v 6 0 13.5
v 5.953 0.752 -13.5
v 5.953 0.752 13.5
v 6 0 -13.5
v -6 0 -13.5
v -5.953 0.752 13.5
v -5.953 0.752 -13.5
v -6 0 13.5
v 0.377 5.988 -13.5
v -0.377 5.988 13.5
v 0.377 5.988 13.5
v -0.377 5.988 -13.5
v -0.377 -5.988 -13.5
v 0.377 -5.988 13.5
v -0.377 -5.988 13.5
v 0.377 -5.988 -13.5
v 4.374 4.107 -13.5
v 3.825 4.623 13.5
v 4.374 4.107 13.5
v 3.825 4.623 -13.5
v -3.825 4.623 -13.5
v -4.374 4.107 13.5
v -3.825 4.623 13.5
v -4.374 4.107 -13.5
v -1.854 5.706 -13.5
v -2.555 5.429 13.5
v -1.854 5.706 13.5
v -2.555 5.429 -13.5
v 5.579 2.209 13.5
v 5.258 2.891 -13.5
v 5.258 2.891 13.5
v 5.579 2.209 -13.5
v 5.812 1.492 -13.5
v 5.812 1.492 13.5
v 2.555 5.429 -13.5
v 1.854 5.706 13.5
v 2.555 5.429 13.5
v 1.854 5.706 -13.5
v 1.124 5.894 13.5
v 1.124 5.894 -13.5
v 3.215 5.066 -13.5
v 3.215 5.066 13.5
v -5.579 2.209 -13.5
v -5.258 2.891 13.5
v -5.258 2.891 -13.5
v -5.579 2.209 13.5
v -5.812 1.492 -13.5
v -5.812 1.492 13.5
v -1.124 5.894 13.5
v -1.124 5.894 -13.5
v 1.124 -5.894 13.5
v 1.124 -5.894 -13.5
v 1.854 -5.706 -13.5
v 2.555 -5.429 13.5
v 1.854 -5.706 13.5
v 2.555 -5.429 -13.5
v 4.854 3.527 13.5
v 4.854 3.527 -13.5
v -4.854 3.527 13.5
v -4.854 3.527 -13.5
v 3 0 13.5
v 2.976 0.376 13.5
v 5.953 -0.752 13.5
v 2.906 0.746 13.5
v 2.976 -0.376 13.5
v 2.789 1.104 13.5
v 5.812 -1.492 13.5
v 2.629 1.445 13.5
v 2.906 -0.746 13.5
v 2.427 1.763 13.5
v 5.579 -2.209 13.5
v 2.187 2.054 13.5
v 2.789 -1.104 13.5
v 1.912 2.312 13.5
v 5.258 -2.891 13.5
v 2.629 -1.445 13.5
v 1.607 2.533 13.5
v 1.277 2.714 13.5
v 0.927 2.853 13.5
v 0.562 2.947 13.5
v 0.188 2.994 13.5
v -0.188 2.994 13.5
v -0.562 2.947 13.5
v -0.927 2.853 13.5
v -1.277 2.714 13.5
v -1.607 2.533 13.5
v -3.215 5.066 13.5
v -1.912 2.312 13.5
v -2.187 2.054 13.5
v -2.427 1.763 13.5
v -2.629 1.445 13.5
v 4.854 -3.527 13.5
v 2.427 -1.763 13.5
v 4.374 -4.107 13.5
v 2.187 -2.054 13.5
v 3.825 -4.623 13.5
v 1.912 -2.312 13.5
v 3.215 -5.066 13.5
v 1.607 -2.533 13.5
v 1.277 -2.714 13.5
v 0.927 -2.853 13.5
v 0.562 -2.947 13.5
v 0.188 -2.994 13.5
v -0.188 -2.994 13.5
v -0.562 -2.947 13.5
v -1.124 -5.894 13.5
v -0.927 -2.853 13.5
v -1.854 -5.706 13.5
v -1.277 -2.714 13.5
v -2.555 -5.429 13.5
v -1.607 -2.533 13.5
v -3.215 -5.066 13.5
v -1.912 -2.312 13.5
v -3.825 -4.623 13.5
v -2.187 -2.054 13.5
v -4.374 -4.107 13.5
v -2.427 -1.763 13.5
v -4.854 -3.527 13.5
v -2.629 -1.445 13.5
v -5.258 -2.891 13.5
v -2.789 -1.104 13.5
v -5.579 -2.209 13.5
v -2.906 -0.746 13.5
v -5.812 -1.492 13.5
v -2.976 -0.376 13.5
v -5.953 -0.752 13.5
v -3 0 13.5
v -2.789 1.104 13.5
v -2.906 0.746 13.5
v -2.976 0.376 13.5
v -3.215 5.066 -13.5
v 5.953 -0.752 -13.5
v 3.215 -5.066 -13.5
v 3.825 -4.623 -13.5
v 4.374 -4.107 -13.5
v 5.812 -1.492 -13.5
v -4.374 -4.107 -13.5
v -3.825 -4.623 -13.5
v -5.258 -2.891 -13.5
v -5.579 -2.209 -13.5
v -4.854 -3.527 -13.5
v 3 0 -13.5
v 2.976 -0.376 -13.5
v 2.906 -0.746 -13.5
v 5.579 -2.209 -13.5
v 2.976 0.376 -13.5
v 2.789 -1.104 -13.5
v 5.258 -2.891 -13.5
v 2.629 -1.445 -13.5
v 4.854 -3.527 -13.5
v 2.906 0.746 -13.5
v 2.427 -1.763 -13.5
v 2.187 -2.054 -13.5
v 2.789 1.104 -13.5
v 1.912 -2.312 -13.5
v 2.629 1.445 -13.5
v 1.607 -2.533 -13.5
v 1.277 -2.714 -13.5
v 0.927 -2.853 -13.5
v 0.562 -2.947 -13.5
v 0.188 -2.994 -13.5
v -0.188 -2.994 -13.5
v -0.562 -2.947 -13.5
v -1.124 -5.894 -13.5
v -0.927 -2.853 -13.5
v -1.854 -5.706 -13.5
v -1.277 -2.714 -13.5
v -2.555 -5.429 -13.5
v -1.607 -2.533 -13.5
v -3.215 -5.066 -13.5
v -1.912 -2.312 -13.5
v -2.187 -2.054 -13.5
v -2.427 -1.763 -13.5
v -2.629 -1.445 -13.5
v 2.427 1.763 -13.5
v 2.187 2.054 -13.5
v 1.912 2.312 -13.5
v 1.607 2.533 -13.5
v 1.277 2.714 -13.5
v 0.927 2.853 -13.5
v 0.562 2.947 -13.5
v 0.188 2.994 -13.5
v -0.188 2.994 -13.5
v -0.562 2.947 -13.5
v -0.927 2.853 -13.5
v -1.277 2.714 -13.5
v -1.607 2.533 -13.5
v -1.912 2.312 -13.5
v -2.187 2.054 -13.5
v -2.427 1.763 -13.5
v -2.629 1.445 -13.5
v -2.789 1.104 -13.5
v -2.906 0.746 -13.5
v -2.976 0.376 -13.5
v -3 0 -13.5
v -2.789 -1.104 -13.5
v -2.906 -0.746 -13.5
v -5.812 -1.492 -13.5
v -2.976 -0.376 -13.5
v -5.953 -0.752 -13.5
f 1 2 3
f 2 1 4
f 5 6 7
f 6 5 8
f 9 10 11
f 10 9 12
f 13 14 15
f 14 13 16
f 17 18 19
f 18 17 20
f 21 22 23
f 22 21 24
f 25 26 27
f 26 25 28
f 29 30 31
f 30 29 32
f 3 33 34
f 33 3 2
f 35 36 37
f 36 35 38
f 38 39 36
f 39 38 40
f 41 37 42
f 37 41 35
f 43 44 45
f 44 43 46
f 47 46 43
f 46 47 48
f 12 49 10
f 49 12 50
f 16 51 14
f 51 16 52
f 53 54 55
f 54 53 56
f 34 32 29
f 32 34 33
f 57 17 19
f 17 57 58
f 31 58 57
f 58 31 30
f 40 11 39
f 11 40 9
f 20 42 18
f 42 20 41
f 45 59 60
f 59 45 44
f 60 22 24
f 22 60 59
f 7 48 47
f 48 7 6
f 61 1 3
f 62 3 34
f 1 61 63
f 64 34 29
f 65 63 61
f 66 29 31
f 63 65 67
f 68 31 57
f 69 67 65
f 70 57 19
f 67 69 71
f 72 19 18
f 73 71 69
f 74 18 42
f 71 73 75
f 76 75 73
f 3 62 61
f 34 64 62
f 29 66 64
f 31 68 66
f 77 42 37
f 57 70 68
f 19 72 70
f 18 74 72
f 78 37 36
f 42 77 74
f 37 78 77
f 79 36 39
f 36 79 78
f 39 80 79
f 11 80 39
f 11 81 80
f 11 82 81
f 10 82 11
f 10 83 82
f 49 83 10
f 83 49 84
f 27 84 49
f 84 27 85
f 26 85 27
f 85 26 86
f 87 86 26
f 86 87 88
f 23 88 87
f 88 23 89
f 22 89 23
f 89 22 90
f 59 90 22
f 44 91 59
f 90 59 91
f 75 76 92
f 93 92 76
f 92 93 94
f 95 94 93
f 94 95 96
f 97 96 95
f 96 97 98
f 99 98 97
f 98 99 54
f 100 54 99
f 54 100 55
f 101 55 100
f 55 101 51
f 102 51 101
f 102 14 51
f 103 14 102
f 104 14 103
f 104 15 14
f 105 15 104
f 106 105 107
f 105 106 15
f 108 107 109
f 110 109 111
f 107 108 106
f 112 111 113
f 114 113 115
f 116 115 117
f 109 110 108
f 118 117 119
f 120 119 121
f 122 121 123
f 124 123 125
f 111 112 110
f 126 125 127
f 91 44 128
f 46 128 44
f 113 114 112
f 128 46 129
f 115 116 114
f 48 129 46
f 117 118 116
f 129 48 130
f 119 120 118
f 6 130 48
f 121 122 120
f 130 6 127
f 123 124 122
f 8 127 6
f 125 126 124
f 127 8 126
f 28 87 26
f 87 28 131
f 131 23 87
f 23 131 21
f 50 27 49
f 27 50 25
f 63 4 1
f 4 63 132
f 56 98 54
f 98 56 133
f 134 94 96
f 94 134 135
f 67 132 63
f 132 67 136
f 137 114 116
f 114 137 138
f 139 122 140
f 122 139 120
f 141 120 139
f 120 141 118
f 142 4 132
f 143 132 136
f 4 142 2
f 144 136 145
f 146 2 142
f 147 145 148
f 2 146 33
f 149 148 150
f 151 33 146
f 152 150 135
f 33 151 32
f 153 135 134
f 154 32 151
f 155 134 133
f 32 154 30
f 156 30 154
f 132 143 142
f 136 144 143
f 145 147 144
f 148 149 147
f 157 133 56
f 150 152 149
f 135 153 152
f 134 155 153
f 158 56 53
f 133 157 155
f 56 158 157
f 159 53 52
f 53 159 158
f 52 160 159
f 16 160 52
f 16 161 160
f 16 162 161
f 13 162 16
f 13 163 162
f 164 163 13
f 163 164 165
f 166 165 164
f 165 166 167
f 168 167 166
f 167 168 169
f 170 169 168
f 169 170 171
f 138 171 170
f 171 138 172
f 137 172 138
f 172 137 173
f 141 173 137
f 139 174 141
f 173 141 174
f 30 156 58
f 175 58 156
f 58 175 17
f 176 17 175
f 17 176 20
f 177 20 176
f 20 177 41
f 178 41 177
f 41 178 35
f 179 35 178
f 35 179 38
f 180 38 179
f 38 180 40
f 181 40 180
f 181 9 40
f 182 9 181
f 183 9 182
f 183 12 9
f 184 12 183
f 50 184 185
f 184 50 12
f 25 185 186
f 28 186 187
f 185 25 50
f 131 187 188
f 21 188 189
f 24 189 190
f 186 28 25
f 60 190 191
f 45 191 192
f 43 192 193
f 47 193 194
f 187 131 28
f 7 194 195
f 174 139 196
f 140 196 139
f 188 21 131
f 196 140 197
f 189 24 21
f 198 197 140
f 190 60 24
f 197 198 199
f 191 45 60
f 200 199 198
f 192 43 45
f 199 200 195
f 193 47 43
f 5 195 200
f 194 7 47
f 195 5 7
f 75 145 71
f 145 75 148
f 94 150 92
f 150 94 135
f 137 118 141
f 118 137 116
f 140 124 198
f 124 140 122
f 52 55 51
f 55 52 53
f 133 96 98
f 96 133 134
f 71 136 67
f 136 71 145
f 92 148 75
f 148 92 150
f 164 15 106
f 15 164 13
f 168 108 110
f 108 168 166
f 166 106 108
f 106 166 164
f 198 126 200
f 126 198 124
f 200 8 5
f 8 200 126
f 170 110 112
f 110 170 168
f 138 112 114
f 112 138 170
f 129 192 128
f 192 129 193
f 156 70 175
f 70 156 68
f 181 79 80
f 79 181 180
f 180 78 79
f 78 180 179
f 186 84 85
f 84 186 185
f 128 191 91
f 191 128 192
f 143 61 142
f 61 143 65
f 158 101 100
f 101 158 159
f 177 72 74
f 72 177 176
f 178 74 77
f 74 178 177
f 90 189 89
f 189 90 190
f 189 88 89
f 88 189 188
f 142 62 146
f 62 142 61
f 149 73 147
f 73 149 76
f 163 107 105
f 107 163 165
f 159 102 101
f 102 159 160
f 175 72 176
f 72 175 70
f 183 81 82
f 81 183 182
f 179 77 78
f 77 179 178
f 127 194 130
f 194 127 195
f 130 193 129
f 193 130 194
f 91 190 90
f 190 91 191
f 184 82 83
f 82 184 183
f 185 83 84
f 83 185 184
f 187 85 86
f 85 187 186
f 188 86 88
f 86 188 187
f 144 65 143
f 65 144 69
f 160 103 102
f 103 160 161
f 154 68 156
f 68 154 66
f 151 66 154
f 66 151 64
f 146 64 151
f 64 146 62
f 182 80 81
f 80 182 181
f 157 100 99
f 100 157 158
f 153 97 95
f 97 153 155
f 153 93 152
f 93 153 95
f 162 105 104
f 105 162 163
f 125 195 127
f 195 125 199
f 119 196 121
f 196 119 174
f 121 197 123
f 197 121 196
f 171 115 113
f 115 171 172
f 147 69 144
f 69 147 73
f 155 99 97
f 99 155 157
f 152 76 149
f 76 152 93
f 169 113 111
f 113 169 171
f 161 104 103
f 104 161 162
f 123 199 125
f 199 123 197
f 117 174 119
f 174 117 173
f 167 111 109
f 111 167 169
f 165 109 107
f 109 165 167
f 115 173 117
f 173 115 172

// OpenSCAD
$fn = 50;


difference() {
	union() {
		translate(v = [0, 0, -13.5000000000]) {
			cylinder(h = 27, r = 6.0000000000);
		}
	}
	union() {
		translate(v = [0, 0, -100.0000000000]) {
			cylinder(h = 200, r = 3);
		}
	}
}
